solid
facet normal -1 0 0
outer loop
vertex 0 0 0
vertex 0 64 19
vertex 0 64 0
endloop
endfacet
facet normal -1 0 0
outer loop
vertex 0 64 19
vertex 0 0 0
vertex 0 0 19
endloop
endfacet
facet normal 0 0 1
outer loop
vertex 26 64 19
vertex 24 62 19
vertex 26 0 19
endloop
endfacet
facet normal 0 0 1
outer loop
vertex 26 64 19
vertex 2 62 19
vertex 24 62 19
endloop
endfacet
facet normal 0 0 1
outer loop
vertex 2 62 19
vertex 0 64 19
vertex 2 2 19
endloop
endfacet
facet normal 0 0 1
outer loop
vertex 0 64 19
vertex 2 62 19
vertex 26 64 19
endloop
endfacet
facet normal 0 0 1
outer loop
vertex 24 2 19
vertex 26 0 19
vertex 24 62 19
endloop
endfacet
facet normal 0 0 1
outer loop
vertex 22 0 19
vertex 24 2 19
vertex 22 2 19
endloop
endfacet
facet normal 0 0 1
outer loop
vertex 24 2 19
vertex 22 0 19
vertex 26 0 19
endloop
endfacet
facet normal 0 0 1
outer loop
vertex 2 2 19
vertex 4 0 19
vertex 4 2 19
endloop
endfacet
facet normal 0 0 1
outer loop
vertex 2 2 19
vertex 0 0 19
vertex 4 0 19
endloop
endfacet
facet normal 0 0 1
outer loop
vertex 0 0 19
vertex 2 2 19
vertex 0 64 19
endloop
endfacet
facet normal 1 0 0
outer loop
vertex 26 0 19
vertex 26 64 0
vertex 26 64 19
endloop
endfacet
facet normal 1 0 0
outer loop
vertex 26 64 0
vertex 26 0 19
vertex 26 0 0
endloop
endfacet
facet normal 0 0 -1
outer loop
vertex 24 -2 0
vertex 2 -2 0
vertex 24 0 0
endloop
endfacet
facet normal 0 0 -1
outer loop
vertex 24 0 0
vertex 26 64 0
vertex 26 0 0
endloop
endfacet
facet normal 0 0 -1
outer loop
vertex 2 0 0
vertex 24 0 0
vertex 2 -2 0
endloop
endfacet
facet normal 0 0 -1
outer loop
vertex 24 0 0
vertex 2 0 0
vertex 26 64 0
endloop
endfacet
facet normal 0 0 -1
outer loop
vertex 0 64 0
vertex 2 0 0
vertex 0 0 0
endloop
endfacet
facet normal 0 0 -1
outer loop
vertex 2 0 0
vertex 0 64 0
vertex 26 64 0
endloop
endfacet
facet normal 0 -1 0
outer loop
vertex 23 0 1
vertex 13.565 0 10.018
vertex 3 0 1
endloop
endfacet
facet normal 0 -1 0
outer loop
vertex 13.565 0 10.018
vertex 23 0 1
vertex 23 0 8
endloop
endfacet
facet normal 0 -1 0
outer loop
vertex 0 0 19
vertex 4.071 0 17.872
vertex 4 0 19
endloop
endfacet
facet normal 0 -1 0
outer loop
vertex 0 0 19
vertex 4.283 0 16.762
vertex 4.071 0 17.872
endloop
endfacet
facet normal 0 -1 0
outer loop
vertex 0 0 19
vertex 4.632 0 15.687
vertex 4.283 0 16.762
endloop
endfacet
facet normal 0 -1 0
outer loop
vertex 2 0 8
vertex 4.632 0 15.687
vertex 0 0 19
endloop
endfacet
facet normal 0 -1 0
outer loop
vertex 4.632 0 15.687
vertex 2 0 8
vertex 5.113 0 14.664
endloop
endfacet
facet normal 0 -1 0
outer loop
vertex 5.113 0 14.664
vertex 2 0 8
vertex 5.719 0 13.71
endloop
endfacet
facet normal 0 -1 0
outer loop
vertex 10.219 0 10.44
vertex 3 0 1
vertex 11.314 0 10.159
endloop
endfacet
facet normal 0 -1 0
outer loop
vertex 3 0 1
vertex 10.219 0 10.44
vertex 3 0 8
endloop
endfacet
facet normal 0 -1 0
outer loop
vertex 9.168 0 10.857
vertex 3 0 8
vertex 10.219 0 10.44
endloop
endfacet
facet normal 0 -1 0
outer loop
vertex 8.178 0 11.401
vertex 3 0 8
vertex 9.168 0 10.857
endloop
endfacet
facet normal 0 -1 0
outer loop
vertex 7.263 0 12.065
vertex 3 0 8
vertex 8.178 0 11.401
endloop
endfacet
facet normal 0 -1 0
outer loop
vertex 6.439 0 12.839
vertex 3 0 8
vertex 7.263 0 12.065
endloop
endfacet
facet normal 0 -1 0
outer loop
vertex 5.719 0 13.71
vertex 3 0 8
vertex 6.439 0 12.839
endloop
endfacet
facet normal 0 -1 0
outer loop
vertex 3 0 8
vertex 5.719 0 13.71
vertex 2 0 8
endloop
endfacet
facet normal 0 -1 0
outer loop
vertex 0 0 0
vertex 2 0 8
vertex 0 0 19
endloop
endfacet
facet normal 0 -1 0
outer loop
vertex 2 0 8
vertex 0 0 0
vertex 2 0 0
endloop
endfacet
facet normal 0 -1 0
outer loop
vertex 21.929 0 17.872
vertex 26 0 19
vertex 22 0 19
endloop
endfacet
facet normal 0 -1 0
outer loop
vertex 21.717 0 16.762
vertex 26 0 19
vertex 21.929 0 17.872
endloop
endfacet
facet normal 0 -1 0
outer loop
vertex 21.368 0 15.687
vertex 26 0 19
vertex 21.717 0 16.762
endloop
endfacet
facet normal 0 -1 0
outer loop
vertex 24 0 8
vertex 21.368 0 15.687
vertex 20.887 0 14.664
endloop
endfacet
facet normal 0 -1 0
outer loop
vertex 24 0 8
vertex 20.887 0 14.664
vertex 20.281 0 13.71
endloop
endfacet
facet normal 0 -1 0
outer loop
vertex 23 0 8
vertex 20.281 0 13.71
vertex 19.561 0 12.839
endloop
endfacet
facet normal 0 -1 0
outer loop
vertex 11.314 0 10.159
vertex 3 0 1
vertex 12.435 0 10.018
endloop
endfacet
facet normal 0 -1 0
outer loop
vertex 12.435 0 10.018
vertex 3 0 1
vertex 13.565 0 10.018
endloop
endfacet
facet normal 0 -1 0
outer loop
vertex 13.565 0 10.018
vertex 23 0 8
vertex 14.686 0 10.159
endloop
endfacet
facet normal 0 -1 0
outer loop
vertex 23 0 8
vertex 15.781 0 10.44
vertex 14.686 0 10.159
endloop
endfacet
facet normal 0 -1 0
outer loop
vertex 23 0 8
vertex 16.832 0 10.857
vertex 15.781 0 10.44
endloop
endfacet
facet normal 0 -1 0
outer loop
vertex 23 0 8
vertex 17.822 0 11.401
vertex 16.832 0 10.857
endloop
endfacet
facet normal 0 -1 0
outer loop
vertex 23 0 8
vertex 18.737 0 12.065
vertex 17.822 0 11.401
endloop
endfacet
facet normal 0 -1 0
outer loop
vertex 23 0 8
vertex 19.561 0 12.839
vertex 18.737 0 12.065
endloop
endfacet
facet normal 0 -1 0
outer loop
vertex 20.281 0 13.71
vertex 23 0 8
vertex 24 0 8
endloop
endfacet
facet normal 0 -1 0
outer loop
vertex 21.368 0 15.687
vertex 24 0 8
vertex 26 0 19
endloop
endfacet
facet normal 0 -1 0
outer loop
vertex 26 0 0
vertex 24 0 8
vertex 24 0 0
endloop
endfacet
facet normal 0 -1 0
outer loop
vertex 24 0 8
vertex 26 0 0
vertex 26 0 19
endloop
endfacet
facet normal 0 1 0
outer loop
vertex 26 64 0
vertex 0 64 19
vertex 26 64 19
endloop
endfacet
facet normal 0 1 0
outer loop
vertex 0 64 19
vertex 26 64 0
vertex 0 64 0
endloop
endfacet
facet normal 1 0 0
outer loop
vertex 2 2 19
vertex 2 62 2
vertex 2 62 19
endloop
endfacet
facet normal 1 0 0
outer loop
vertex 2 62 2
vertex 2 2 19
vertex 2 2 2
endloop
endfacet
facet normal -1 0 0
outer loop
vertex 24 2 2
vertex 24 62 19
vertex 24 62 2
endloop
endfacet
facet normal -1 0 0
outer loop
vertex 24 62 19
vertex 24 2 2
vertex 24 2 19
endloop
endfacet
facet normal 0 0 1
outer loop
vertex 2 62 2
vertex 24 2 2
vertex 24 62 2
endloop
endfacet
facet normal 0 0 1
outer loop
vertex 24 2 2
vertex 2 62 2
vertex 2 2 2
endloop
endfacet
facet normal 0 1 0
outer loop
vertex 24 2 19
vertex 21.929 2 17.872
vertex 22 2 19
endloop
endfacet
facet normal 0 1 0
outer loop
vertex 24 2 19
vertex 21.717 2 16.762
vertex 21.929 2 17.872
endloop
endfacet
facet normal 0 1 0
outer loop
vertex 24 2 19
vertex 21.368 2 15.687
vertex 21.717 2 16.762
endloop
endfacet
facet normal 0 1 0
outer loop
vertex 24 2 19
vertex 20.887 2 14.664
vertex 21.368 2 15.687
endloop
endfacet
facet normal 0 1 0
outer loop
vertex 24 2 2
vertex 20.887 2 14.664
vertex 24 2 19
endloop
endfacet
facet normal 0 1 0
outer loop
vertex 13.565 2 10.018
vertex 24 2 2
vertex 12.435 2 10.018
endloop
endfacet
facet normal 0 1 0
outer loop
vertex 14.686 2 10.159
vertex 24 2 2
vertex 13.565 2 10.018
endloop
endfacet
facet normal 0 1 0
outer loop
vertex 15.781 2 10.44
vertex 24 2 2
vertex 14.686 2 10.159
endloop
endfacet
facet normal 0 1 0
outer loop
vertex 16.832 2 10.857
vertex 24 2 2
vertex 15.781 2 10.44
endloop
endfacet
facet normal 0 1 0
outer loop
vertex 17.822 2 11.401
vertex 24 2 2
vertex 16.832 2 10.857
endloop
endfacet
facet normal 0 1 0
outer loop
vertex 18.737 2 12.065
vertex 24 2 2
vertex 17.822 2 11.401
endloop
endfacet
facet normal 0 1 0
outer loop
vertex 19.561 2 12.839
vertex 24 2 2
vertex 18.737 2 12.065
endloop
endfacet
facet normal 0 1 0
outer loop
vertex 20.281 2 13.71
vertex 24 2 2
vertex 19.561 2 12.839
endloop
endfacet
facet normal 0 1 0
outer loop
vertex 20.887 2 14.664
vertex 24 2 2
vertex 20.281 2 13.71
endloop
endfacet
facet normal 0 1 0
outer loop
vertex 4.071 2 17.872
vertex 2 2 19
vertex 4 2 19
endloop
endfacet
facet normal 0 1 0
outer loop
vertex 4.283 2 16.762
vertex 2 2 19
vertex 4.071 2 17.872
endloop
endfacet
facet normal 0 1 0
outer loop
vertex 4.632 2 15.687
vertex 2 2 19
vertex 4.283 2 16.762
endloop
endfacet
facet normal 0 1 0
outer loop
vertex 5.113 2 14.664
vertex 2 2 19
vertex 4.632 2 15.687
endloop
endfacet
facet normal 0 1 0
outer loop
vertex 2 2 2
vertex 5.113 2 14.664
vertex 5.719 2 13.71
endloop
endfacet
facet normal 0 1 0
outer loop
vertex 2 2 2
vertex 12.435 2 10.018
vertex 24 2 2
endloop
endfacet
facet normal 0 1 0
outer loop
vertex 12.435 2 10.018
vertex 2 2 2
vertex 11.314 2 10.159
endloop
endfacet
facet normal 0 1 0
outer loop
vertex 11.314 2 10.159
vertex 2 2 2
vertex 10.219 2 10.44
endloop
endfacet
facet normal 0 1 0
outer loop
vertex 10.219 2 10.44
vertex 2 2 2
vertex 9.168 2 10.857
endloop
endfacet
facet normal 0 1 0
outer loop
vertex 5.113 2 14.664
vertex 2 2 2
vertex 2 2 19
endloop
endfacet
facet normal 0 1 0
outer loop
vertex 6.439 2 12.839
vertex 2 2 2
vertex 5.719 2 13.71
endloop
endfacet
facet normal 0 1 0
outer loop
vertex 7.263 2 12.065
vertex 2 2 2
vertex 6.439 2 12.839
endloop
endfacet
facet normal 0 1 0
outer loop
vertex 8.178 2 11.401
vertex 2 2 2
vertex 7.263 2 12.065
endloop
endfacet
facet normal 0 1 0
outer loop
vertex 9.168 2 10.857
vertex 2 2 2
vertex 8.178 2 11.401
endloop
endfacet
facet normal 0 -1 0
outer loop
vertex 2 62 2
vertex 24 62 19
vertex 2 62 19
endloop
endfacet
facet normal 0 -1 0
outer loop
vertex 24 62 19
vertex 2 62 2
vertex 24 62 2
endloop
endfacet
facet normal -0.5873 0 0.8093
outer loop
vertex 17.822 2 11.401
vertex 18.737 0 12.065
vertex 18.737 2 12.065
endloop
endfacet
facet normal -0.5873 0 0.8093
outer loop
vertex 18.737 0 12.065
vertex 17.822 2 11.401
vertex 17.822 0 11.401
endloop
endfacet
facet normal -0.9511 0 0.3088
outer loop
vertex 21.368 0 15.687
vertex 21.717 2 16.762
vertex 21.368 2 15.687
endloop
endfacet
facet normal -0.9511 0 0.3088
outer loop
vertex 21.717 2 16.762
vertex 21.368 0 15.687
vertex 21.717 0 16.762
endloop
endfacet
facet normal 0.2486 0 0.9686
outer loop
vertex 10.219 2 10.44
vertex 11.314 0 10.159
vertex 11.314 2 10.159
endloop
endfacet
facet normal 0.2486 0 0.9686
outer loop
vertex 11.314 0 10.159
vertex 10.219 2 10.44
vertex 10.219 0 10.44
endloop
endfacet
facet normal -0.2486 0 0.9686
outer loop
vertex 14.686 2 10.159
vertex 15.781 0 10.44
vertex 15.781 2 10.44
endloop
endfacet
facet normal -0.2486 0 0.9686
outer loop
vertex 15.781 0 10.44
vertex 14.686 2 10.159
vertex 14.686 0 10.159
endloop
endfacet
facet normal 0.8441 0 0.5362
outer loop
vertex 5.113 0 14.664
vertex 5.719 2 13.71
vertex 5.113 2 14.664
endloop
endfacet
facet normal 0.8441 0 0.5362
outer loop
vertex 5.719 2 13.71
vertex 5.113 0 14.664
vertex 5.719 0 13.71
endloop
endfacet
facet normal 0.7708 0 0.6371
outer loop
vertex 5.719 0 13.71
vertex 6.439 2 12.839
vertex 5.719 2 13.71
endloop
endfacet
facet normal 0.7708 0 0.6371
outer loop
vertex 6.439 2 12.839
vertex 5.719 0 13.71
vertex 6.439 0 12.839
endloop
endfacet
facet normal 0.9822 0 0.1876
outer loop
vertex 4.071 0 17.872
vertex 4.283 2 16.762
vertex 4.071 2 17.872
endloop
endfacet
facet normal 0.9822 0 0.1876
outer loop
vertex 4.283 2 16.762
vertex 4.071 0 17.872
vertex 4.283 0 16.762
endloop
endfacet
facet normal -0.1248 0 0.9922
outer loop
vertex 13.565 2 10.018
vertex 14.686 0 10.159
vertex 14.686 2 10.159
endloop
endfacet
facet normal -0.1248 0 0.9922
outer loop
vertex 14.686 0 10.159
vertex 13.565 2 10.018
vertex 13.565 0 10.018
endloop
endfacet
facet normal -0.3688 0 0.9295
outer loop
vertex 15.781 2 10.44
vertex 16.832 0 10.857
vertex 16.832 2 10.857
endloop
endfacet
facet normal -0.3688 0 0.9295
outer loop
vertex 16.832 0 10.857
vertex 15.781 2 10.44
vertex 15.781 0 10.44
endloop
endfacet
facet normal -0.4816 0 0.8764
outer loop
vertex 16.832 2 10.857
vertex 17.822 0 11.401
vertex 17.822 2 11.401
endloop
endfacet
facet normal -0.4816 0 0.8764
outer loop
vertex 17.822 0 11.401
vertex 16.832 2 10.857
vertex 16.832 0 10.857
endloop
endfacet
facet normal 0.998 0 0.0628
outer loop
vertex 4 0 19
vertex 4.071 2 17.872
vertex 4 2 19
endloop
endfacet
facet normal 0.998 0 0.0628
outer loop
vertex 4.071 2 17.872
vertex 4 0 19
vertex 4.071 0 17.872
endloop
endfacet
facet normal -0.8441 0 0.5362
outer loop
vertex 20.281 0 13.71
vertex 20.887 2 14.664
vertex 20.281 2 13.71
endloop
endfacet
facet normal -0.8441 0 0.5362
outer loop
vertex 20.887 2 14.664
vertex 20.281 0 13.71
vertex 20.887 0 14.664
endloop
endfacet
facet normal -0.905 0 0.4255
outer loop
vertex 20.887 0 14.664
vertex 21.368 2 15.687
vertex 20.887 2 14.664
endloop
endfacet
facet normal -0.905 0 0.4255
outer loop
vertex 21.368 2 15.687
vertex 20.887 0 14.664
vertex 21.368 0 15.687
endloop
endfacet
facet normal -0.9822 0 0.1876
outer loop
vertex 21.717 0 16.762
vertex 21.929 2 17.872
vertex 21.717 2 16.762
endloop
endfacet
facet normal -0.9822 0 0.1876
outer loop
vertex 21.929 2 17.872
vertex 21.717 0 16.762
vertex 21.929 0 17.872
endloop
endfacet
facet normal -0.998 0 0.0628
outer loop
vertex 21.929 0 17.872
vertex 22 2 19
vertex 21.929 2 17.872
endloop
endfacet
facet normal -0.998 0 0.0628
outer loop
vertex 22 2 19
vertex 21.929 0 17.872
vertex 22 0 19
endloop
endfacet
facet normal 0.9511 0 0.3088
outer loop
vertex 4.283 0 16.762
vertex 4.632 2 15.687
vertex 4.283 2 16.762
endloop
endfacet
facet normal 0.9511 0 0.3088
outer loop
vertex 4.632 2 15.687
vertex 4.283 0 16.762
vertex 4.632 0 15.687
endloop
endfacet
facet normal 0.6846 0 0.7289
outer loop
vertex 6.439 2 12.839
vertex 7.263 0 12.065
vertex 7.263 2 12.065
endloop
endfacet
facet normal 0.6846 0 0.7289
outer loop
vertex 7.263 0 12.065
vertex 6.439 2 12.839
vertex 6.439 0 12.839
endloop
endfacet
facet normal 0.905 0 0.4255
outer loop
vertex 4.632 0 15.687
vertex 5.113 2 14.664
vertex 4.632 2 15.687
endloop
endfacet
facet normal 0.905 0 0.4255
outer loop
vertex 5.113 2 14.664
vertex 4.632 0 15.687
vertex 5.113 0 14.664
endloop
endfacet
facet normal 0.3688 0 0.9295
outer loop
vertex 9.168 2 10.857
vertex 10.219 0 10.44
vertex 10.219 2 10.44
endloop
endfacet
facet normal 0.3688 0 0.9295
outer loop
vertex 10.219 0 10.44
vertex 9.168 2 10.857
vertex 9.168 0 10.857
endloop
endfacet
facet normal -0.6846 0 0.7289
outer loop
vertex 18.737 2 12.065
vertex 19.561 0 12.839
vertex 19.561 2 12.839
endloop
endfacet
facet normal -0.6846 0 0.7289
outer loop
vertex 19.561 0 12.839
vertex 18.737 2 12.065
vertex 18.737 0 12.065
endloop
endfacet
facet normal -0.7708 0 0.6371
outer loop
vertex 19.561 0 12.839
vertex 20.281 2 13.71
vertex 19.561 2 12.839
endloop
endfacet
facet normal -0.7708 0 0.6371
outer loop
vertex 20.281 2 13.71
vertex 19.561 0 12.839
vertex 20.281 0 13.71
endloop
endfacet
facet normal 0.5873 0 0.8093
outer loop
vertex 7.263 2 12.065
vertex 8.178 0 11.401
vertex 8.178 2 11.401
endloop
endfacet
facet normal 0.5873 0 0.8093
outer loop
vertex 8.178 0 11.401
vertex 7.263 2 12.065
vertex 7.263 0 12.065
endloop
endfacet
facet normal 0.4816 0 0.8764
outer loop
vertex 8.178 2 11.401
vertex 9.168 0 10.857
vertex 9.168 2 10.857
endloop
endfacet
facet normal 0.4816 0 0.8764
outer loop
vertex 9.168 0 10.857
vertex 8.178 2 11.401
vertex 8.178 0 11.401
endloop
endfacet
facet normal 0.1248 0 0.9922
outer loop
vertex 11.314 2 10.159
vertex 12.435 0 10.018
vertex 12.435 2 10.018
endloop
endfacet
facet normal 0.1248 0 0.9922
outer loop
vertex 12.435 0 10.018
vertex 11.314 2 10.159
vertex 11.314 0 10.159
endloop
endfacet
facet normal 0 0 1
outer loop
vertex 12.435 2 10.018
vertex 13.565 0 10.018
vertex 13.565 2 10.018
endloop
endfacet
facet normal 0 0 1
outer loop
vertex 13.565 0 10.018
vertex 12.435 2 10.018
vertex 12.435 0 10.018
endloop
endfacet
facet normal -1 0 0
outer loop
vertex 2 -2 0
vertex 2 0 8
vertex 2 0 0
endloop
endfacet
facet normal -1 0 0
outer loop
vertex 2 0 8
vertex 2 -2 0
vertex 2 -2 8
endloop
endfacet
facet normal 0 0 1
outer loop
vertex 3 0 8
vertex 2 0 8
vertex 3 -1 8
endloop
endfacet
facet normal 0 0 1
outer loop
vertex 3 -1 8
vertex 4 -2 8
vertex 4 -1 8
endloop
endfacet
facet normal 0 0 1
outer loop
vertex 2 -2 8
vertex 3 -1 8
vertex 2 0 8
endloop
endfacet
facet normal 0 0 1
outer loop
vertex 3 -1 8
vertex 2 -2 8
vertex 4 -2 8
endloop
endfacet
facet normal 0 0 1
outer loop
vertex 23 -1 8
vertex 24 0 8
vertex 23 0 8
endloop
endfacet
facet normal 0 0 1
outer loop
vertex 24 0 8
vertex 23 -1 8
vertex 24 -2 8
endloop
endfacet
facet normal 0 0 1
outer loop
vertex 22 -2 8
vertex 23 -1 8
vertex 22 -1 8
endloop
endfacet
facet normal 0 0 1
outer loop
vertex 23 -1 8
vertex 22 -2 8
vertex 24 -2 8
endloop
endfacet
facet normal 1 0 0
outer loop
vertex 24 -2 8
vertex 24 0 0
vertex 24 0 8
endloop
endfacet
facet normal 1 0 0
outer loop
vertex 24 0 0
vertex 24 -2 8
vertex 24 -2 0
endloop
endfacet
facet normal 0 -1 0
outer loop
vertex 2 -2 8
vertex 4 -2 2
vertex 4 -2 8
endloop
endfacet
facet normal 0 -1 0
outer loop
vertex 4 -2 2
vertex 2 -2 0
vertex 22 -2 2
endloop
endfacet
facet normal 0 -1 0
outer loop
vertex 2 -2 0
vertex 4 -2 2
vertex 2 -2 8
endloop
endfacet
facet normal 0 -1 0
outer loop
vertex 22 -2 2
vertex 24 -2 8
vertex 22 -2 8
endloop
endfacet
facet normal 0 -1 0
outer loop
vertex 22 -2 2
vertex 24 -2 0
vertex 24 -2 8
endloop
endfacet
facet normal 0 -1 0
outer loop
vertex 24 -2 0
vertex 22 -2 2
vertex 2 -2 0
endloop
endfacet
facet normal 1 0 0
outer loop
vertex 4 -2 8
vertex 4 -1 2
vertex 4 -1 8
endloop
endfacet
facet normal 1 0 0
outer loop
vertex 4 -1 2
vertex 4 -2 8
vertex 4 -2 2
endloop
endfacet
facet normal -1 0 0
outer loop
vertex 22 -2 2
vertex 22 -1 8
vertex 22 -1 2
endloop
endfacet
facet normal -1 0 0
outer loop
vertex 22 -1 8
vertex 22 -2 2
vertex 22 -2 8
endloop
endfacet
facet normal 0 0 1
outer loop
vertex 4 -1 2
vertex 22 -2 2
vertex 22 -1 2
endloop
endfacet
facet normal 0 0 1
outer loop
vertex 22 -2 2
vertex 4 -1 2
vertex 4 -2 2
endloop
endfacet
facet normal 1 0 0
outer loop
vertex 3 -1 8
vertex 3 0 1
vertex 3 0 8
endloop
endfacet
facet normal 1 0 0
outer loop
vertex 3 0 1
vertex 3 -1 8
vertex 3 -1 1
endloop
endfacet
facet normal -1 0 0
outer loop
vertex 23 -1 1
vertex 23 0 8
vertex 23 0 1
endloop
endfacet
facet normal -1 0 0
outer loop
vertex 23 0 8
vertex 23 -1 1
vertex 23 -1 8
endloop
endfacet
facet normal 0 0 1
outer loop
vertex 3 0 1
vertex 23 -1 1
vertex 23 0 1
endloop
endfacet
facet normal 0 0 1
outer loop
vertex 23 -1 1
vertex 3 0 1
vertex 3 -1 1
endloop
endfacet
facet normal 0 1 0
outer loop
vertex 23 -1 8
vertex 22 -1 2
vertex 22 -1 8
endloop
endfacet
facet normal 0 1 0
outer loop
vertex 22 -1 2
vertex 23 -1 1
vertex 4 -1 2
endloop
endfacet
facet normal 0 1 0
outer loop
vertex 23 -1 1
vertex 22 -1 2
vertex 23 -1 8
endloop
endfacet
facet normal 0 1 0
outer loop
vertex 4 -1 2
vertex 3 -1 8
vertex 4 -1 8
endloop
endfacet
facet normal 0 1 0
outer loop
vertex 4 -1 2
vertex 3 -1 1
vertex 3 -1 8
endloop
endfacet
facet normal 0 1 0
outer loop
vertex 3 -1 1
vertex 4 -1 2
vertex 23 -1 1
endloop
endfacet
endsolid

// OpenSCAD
case_x = 22;
case_y = 60;
case_z = 17;
thick = 2;
rayon=case_x/2-2;

difference() {
	cube([case_x+2*thick,case_y+2*thick,case_z+thick]);
	translate([thick,thick,thick]) {
		cube([case_x,case_y,case_z+10]);
	}
	
	translate([case_x/2+thick,2*thick,case_z+thick]) {
		rotate([90,0,0]) {
			cylinder(r=rayon,h=4*thick,$fn=50);
		}
	}
}

translate([thick,-2,0]) {
	difference() {
		cube([case_x,thick,case_z-rayon]);
		translate([thick,-thick,thick]) {
			cube([case_x-2*thick,2*thick,case_z-rayon]);
		}
		translate([thick/2,thick/2,thick/2]) {
			cube([case_x-thick,2*thick,case_z-rayon]);
		}
	}
}
